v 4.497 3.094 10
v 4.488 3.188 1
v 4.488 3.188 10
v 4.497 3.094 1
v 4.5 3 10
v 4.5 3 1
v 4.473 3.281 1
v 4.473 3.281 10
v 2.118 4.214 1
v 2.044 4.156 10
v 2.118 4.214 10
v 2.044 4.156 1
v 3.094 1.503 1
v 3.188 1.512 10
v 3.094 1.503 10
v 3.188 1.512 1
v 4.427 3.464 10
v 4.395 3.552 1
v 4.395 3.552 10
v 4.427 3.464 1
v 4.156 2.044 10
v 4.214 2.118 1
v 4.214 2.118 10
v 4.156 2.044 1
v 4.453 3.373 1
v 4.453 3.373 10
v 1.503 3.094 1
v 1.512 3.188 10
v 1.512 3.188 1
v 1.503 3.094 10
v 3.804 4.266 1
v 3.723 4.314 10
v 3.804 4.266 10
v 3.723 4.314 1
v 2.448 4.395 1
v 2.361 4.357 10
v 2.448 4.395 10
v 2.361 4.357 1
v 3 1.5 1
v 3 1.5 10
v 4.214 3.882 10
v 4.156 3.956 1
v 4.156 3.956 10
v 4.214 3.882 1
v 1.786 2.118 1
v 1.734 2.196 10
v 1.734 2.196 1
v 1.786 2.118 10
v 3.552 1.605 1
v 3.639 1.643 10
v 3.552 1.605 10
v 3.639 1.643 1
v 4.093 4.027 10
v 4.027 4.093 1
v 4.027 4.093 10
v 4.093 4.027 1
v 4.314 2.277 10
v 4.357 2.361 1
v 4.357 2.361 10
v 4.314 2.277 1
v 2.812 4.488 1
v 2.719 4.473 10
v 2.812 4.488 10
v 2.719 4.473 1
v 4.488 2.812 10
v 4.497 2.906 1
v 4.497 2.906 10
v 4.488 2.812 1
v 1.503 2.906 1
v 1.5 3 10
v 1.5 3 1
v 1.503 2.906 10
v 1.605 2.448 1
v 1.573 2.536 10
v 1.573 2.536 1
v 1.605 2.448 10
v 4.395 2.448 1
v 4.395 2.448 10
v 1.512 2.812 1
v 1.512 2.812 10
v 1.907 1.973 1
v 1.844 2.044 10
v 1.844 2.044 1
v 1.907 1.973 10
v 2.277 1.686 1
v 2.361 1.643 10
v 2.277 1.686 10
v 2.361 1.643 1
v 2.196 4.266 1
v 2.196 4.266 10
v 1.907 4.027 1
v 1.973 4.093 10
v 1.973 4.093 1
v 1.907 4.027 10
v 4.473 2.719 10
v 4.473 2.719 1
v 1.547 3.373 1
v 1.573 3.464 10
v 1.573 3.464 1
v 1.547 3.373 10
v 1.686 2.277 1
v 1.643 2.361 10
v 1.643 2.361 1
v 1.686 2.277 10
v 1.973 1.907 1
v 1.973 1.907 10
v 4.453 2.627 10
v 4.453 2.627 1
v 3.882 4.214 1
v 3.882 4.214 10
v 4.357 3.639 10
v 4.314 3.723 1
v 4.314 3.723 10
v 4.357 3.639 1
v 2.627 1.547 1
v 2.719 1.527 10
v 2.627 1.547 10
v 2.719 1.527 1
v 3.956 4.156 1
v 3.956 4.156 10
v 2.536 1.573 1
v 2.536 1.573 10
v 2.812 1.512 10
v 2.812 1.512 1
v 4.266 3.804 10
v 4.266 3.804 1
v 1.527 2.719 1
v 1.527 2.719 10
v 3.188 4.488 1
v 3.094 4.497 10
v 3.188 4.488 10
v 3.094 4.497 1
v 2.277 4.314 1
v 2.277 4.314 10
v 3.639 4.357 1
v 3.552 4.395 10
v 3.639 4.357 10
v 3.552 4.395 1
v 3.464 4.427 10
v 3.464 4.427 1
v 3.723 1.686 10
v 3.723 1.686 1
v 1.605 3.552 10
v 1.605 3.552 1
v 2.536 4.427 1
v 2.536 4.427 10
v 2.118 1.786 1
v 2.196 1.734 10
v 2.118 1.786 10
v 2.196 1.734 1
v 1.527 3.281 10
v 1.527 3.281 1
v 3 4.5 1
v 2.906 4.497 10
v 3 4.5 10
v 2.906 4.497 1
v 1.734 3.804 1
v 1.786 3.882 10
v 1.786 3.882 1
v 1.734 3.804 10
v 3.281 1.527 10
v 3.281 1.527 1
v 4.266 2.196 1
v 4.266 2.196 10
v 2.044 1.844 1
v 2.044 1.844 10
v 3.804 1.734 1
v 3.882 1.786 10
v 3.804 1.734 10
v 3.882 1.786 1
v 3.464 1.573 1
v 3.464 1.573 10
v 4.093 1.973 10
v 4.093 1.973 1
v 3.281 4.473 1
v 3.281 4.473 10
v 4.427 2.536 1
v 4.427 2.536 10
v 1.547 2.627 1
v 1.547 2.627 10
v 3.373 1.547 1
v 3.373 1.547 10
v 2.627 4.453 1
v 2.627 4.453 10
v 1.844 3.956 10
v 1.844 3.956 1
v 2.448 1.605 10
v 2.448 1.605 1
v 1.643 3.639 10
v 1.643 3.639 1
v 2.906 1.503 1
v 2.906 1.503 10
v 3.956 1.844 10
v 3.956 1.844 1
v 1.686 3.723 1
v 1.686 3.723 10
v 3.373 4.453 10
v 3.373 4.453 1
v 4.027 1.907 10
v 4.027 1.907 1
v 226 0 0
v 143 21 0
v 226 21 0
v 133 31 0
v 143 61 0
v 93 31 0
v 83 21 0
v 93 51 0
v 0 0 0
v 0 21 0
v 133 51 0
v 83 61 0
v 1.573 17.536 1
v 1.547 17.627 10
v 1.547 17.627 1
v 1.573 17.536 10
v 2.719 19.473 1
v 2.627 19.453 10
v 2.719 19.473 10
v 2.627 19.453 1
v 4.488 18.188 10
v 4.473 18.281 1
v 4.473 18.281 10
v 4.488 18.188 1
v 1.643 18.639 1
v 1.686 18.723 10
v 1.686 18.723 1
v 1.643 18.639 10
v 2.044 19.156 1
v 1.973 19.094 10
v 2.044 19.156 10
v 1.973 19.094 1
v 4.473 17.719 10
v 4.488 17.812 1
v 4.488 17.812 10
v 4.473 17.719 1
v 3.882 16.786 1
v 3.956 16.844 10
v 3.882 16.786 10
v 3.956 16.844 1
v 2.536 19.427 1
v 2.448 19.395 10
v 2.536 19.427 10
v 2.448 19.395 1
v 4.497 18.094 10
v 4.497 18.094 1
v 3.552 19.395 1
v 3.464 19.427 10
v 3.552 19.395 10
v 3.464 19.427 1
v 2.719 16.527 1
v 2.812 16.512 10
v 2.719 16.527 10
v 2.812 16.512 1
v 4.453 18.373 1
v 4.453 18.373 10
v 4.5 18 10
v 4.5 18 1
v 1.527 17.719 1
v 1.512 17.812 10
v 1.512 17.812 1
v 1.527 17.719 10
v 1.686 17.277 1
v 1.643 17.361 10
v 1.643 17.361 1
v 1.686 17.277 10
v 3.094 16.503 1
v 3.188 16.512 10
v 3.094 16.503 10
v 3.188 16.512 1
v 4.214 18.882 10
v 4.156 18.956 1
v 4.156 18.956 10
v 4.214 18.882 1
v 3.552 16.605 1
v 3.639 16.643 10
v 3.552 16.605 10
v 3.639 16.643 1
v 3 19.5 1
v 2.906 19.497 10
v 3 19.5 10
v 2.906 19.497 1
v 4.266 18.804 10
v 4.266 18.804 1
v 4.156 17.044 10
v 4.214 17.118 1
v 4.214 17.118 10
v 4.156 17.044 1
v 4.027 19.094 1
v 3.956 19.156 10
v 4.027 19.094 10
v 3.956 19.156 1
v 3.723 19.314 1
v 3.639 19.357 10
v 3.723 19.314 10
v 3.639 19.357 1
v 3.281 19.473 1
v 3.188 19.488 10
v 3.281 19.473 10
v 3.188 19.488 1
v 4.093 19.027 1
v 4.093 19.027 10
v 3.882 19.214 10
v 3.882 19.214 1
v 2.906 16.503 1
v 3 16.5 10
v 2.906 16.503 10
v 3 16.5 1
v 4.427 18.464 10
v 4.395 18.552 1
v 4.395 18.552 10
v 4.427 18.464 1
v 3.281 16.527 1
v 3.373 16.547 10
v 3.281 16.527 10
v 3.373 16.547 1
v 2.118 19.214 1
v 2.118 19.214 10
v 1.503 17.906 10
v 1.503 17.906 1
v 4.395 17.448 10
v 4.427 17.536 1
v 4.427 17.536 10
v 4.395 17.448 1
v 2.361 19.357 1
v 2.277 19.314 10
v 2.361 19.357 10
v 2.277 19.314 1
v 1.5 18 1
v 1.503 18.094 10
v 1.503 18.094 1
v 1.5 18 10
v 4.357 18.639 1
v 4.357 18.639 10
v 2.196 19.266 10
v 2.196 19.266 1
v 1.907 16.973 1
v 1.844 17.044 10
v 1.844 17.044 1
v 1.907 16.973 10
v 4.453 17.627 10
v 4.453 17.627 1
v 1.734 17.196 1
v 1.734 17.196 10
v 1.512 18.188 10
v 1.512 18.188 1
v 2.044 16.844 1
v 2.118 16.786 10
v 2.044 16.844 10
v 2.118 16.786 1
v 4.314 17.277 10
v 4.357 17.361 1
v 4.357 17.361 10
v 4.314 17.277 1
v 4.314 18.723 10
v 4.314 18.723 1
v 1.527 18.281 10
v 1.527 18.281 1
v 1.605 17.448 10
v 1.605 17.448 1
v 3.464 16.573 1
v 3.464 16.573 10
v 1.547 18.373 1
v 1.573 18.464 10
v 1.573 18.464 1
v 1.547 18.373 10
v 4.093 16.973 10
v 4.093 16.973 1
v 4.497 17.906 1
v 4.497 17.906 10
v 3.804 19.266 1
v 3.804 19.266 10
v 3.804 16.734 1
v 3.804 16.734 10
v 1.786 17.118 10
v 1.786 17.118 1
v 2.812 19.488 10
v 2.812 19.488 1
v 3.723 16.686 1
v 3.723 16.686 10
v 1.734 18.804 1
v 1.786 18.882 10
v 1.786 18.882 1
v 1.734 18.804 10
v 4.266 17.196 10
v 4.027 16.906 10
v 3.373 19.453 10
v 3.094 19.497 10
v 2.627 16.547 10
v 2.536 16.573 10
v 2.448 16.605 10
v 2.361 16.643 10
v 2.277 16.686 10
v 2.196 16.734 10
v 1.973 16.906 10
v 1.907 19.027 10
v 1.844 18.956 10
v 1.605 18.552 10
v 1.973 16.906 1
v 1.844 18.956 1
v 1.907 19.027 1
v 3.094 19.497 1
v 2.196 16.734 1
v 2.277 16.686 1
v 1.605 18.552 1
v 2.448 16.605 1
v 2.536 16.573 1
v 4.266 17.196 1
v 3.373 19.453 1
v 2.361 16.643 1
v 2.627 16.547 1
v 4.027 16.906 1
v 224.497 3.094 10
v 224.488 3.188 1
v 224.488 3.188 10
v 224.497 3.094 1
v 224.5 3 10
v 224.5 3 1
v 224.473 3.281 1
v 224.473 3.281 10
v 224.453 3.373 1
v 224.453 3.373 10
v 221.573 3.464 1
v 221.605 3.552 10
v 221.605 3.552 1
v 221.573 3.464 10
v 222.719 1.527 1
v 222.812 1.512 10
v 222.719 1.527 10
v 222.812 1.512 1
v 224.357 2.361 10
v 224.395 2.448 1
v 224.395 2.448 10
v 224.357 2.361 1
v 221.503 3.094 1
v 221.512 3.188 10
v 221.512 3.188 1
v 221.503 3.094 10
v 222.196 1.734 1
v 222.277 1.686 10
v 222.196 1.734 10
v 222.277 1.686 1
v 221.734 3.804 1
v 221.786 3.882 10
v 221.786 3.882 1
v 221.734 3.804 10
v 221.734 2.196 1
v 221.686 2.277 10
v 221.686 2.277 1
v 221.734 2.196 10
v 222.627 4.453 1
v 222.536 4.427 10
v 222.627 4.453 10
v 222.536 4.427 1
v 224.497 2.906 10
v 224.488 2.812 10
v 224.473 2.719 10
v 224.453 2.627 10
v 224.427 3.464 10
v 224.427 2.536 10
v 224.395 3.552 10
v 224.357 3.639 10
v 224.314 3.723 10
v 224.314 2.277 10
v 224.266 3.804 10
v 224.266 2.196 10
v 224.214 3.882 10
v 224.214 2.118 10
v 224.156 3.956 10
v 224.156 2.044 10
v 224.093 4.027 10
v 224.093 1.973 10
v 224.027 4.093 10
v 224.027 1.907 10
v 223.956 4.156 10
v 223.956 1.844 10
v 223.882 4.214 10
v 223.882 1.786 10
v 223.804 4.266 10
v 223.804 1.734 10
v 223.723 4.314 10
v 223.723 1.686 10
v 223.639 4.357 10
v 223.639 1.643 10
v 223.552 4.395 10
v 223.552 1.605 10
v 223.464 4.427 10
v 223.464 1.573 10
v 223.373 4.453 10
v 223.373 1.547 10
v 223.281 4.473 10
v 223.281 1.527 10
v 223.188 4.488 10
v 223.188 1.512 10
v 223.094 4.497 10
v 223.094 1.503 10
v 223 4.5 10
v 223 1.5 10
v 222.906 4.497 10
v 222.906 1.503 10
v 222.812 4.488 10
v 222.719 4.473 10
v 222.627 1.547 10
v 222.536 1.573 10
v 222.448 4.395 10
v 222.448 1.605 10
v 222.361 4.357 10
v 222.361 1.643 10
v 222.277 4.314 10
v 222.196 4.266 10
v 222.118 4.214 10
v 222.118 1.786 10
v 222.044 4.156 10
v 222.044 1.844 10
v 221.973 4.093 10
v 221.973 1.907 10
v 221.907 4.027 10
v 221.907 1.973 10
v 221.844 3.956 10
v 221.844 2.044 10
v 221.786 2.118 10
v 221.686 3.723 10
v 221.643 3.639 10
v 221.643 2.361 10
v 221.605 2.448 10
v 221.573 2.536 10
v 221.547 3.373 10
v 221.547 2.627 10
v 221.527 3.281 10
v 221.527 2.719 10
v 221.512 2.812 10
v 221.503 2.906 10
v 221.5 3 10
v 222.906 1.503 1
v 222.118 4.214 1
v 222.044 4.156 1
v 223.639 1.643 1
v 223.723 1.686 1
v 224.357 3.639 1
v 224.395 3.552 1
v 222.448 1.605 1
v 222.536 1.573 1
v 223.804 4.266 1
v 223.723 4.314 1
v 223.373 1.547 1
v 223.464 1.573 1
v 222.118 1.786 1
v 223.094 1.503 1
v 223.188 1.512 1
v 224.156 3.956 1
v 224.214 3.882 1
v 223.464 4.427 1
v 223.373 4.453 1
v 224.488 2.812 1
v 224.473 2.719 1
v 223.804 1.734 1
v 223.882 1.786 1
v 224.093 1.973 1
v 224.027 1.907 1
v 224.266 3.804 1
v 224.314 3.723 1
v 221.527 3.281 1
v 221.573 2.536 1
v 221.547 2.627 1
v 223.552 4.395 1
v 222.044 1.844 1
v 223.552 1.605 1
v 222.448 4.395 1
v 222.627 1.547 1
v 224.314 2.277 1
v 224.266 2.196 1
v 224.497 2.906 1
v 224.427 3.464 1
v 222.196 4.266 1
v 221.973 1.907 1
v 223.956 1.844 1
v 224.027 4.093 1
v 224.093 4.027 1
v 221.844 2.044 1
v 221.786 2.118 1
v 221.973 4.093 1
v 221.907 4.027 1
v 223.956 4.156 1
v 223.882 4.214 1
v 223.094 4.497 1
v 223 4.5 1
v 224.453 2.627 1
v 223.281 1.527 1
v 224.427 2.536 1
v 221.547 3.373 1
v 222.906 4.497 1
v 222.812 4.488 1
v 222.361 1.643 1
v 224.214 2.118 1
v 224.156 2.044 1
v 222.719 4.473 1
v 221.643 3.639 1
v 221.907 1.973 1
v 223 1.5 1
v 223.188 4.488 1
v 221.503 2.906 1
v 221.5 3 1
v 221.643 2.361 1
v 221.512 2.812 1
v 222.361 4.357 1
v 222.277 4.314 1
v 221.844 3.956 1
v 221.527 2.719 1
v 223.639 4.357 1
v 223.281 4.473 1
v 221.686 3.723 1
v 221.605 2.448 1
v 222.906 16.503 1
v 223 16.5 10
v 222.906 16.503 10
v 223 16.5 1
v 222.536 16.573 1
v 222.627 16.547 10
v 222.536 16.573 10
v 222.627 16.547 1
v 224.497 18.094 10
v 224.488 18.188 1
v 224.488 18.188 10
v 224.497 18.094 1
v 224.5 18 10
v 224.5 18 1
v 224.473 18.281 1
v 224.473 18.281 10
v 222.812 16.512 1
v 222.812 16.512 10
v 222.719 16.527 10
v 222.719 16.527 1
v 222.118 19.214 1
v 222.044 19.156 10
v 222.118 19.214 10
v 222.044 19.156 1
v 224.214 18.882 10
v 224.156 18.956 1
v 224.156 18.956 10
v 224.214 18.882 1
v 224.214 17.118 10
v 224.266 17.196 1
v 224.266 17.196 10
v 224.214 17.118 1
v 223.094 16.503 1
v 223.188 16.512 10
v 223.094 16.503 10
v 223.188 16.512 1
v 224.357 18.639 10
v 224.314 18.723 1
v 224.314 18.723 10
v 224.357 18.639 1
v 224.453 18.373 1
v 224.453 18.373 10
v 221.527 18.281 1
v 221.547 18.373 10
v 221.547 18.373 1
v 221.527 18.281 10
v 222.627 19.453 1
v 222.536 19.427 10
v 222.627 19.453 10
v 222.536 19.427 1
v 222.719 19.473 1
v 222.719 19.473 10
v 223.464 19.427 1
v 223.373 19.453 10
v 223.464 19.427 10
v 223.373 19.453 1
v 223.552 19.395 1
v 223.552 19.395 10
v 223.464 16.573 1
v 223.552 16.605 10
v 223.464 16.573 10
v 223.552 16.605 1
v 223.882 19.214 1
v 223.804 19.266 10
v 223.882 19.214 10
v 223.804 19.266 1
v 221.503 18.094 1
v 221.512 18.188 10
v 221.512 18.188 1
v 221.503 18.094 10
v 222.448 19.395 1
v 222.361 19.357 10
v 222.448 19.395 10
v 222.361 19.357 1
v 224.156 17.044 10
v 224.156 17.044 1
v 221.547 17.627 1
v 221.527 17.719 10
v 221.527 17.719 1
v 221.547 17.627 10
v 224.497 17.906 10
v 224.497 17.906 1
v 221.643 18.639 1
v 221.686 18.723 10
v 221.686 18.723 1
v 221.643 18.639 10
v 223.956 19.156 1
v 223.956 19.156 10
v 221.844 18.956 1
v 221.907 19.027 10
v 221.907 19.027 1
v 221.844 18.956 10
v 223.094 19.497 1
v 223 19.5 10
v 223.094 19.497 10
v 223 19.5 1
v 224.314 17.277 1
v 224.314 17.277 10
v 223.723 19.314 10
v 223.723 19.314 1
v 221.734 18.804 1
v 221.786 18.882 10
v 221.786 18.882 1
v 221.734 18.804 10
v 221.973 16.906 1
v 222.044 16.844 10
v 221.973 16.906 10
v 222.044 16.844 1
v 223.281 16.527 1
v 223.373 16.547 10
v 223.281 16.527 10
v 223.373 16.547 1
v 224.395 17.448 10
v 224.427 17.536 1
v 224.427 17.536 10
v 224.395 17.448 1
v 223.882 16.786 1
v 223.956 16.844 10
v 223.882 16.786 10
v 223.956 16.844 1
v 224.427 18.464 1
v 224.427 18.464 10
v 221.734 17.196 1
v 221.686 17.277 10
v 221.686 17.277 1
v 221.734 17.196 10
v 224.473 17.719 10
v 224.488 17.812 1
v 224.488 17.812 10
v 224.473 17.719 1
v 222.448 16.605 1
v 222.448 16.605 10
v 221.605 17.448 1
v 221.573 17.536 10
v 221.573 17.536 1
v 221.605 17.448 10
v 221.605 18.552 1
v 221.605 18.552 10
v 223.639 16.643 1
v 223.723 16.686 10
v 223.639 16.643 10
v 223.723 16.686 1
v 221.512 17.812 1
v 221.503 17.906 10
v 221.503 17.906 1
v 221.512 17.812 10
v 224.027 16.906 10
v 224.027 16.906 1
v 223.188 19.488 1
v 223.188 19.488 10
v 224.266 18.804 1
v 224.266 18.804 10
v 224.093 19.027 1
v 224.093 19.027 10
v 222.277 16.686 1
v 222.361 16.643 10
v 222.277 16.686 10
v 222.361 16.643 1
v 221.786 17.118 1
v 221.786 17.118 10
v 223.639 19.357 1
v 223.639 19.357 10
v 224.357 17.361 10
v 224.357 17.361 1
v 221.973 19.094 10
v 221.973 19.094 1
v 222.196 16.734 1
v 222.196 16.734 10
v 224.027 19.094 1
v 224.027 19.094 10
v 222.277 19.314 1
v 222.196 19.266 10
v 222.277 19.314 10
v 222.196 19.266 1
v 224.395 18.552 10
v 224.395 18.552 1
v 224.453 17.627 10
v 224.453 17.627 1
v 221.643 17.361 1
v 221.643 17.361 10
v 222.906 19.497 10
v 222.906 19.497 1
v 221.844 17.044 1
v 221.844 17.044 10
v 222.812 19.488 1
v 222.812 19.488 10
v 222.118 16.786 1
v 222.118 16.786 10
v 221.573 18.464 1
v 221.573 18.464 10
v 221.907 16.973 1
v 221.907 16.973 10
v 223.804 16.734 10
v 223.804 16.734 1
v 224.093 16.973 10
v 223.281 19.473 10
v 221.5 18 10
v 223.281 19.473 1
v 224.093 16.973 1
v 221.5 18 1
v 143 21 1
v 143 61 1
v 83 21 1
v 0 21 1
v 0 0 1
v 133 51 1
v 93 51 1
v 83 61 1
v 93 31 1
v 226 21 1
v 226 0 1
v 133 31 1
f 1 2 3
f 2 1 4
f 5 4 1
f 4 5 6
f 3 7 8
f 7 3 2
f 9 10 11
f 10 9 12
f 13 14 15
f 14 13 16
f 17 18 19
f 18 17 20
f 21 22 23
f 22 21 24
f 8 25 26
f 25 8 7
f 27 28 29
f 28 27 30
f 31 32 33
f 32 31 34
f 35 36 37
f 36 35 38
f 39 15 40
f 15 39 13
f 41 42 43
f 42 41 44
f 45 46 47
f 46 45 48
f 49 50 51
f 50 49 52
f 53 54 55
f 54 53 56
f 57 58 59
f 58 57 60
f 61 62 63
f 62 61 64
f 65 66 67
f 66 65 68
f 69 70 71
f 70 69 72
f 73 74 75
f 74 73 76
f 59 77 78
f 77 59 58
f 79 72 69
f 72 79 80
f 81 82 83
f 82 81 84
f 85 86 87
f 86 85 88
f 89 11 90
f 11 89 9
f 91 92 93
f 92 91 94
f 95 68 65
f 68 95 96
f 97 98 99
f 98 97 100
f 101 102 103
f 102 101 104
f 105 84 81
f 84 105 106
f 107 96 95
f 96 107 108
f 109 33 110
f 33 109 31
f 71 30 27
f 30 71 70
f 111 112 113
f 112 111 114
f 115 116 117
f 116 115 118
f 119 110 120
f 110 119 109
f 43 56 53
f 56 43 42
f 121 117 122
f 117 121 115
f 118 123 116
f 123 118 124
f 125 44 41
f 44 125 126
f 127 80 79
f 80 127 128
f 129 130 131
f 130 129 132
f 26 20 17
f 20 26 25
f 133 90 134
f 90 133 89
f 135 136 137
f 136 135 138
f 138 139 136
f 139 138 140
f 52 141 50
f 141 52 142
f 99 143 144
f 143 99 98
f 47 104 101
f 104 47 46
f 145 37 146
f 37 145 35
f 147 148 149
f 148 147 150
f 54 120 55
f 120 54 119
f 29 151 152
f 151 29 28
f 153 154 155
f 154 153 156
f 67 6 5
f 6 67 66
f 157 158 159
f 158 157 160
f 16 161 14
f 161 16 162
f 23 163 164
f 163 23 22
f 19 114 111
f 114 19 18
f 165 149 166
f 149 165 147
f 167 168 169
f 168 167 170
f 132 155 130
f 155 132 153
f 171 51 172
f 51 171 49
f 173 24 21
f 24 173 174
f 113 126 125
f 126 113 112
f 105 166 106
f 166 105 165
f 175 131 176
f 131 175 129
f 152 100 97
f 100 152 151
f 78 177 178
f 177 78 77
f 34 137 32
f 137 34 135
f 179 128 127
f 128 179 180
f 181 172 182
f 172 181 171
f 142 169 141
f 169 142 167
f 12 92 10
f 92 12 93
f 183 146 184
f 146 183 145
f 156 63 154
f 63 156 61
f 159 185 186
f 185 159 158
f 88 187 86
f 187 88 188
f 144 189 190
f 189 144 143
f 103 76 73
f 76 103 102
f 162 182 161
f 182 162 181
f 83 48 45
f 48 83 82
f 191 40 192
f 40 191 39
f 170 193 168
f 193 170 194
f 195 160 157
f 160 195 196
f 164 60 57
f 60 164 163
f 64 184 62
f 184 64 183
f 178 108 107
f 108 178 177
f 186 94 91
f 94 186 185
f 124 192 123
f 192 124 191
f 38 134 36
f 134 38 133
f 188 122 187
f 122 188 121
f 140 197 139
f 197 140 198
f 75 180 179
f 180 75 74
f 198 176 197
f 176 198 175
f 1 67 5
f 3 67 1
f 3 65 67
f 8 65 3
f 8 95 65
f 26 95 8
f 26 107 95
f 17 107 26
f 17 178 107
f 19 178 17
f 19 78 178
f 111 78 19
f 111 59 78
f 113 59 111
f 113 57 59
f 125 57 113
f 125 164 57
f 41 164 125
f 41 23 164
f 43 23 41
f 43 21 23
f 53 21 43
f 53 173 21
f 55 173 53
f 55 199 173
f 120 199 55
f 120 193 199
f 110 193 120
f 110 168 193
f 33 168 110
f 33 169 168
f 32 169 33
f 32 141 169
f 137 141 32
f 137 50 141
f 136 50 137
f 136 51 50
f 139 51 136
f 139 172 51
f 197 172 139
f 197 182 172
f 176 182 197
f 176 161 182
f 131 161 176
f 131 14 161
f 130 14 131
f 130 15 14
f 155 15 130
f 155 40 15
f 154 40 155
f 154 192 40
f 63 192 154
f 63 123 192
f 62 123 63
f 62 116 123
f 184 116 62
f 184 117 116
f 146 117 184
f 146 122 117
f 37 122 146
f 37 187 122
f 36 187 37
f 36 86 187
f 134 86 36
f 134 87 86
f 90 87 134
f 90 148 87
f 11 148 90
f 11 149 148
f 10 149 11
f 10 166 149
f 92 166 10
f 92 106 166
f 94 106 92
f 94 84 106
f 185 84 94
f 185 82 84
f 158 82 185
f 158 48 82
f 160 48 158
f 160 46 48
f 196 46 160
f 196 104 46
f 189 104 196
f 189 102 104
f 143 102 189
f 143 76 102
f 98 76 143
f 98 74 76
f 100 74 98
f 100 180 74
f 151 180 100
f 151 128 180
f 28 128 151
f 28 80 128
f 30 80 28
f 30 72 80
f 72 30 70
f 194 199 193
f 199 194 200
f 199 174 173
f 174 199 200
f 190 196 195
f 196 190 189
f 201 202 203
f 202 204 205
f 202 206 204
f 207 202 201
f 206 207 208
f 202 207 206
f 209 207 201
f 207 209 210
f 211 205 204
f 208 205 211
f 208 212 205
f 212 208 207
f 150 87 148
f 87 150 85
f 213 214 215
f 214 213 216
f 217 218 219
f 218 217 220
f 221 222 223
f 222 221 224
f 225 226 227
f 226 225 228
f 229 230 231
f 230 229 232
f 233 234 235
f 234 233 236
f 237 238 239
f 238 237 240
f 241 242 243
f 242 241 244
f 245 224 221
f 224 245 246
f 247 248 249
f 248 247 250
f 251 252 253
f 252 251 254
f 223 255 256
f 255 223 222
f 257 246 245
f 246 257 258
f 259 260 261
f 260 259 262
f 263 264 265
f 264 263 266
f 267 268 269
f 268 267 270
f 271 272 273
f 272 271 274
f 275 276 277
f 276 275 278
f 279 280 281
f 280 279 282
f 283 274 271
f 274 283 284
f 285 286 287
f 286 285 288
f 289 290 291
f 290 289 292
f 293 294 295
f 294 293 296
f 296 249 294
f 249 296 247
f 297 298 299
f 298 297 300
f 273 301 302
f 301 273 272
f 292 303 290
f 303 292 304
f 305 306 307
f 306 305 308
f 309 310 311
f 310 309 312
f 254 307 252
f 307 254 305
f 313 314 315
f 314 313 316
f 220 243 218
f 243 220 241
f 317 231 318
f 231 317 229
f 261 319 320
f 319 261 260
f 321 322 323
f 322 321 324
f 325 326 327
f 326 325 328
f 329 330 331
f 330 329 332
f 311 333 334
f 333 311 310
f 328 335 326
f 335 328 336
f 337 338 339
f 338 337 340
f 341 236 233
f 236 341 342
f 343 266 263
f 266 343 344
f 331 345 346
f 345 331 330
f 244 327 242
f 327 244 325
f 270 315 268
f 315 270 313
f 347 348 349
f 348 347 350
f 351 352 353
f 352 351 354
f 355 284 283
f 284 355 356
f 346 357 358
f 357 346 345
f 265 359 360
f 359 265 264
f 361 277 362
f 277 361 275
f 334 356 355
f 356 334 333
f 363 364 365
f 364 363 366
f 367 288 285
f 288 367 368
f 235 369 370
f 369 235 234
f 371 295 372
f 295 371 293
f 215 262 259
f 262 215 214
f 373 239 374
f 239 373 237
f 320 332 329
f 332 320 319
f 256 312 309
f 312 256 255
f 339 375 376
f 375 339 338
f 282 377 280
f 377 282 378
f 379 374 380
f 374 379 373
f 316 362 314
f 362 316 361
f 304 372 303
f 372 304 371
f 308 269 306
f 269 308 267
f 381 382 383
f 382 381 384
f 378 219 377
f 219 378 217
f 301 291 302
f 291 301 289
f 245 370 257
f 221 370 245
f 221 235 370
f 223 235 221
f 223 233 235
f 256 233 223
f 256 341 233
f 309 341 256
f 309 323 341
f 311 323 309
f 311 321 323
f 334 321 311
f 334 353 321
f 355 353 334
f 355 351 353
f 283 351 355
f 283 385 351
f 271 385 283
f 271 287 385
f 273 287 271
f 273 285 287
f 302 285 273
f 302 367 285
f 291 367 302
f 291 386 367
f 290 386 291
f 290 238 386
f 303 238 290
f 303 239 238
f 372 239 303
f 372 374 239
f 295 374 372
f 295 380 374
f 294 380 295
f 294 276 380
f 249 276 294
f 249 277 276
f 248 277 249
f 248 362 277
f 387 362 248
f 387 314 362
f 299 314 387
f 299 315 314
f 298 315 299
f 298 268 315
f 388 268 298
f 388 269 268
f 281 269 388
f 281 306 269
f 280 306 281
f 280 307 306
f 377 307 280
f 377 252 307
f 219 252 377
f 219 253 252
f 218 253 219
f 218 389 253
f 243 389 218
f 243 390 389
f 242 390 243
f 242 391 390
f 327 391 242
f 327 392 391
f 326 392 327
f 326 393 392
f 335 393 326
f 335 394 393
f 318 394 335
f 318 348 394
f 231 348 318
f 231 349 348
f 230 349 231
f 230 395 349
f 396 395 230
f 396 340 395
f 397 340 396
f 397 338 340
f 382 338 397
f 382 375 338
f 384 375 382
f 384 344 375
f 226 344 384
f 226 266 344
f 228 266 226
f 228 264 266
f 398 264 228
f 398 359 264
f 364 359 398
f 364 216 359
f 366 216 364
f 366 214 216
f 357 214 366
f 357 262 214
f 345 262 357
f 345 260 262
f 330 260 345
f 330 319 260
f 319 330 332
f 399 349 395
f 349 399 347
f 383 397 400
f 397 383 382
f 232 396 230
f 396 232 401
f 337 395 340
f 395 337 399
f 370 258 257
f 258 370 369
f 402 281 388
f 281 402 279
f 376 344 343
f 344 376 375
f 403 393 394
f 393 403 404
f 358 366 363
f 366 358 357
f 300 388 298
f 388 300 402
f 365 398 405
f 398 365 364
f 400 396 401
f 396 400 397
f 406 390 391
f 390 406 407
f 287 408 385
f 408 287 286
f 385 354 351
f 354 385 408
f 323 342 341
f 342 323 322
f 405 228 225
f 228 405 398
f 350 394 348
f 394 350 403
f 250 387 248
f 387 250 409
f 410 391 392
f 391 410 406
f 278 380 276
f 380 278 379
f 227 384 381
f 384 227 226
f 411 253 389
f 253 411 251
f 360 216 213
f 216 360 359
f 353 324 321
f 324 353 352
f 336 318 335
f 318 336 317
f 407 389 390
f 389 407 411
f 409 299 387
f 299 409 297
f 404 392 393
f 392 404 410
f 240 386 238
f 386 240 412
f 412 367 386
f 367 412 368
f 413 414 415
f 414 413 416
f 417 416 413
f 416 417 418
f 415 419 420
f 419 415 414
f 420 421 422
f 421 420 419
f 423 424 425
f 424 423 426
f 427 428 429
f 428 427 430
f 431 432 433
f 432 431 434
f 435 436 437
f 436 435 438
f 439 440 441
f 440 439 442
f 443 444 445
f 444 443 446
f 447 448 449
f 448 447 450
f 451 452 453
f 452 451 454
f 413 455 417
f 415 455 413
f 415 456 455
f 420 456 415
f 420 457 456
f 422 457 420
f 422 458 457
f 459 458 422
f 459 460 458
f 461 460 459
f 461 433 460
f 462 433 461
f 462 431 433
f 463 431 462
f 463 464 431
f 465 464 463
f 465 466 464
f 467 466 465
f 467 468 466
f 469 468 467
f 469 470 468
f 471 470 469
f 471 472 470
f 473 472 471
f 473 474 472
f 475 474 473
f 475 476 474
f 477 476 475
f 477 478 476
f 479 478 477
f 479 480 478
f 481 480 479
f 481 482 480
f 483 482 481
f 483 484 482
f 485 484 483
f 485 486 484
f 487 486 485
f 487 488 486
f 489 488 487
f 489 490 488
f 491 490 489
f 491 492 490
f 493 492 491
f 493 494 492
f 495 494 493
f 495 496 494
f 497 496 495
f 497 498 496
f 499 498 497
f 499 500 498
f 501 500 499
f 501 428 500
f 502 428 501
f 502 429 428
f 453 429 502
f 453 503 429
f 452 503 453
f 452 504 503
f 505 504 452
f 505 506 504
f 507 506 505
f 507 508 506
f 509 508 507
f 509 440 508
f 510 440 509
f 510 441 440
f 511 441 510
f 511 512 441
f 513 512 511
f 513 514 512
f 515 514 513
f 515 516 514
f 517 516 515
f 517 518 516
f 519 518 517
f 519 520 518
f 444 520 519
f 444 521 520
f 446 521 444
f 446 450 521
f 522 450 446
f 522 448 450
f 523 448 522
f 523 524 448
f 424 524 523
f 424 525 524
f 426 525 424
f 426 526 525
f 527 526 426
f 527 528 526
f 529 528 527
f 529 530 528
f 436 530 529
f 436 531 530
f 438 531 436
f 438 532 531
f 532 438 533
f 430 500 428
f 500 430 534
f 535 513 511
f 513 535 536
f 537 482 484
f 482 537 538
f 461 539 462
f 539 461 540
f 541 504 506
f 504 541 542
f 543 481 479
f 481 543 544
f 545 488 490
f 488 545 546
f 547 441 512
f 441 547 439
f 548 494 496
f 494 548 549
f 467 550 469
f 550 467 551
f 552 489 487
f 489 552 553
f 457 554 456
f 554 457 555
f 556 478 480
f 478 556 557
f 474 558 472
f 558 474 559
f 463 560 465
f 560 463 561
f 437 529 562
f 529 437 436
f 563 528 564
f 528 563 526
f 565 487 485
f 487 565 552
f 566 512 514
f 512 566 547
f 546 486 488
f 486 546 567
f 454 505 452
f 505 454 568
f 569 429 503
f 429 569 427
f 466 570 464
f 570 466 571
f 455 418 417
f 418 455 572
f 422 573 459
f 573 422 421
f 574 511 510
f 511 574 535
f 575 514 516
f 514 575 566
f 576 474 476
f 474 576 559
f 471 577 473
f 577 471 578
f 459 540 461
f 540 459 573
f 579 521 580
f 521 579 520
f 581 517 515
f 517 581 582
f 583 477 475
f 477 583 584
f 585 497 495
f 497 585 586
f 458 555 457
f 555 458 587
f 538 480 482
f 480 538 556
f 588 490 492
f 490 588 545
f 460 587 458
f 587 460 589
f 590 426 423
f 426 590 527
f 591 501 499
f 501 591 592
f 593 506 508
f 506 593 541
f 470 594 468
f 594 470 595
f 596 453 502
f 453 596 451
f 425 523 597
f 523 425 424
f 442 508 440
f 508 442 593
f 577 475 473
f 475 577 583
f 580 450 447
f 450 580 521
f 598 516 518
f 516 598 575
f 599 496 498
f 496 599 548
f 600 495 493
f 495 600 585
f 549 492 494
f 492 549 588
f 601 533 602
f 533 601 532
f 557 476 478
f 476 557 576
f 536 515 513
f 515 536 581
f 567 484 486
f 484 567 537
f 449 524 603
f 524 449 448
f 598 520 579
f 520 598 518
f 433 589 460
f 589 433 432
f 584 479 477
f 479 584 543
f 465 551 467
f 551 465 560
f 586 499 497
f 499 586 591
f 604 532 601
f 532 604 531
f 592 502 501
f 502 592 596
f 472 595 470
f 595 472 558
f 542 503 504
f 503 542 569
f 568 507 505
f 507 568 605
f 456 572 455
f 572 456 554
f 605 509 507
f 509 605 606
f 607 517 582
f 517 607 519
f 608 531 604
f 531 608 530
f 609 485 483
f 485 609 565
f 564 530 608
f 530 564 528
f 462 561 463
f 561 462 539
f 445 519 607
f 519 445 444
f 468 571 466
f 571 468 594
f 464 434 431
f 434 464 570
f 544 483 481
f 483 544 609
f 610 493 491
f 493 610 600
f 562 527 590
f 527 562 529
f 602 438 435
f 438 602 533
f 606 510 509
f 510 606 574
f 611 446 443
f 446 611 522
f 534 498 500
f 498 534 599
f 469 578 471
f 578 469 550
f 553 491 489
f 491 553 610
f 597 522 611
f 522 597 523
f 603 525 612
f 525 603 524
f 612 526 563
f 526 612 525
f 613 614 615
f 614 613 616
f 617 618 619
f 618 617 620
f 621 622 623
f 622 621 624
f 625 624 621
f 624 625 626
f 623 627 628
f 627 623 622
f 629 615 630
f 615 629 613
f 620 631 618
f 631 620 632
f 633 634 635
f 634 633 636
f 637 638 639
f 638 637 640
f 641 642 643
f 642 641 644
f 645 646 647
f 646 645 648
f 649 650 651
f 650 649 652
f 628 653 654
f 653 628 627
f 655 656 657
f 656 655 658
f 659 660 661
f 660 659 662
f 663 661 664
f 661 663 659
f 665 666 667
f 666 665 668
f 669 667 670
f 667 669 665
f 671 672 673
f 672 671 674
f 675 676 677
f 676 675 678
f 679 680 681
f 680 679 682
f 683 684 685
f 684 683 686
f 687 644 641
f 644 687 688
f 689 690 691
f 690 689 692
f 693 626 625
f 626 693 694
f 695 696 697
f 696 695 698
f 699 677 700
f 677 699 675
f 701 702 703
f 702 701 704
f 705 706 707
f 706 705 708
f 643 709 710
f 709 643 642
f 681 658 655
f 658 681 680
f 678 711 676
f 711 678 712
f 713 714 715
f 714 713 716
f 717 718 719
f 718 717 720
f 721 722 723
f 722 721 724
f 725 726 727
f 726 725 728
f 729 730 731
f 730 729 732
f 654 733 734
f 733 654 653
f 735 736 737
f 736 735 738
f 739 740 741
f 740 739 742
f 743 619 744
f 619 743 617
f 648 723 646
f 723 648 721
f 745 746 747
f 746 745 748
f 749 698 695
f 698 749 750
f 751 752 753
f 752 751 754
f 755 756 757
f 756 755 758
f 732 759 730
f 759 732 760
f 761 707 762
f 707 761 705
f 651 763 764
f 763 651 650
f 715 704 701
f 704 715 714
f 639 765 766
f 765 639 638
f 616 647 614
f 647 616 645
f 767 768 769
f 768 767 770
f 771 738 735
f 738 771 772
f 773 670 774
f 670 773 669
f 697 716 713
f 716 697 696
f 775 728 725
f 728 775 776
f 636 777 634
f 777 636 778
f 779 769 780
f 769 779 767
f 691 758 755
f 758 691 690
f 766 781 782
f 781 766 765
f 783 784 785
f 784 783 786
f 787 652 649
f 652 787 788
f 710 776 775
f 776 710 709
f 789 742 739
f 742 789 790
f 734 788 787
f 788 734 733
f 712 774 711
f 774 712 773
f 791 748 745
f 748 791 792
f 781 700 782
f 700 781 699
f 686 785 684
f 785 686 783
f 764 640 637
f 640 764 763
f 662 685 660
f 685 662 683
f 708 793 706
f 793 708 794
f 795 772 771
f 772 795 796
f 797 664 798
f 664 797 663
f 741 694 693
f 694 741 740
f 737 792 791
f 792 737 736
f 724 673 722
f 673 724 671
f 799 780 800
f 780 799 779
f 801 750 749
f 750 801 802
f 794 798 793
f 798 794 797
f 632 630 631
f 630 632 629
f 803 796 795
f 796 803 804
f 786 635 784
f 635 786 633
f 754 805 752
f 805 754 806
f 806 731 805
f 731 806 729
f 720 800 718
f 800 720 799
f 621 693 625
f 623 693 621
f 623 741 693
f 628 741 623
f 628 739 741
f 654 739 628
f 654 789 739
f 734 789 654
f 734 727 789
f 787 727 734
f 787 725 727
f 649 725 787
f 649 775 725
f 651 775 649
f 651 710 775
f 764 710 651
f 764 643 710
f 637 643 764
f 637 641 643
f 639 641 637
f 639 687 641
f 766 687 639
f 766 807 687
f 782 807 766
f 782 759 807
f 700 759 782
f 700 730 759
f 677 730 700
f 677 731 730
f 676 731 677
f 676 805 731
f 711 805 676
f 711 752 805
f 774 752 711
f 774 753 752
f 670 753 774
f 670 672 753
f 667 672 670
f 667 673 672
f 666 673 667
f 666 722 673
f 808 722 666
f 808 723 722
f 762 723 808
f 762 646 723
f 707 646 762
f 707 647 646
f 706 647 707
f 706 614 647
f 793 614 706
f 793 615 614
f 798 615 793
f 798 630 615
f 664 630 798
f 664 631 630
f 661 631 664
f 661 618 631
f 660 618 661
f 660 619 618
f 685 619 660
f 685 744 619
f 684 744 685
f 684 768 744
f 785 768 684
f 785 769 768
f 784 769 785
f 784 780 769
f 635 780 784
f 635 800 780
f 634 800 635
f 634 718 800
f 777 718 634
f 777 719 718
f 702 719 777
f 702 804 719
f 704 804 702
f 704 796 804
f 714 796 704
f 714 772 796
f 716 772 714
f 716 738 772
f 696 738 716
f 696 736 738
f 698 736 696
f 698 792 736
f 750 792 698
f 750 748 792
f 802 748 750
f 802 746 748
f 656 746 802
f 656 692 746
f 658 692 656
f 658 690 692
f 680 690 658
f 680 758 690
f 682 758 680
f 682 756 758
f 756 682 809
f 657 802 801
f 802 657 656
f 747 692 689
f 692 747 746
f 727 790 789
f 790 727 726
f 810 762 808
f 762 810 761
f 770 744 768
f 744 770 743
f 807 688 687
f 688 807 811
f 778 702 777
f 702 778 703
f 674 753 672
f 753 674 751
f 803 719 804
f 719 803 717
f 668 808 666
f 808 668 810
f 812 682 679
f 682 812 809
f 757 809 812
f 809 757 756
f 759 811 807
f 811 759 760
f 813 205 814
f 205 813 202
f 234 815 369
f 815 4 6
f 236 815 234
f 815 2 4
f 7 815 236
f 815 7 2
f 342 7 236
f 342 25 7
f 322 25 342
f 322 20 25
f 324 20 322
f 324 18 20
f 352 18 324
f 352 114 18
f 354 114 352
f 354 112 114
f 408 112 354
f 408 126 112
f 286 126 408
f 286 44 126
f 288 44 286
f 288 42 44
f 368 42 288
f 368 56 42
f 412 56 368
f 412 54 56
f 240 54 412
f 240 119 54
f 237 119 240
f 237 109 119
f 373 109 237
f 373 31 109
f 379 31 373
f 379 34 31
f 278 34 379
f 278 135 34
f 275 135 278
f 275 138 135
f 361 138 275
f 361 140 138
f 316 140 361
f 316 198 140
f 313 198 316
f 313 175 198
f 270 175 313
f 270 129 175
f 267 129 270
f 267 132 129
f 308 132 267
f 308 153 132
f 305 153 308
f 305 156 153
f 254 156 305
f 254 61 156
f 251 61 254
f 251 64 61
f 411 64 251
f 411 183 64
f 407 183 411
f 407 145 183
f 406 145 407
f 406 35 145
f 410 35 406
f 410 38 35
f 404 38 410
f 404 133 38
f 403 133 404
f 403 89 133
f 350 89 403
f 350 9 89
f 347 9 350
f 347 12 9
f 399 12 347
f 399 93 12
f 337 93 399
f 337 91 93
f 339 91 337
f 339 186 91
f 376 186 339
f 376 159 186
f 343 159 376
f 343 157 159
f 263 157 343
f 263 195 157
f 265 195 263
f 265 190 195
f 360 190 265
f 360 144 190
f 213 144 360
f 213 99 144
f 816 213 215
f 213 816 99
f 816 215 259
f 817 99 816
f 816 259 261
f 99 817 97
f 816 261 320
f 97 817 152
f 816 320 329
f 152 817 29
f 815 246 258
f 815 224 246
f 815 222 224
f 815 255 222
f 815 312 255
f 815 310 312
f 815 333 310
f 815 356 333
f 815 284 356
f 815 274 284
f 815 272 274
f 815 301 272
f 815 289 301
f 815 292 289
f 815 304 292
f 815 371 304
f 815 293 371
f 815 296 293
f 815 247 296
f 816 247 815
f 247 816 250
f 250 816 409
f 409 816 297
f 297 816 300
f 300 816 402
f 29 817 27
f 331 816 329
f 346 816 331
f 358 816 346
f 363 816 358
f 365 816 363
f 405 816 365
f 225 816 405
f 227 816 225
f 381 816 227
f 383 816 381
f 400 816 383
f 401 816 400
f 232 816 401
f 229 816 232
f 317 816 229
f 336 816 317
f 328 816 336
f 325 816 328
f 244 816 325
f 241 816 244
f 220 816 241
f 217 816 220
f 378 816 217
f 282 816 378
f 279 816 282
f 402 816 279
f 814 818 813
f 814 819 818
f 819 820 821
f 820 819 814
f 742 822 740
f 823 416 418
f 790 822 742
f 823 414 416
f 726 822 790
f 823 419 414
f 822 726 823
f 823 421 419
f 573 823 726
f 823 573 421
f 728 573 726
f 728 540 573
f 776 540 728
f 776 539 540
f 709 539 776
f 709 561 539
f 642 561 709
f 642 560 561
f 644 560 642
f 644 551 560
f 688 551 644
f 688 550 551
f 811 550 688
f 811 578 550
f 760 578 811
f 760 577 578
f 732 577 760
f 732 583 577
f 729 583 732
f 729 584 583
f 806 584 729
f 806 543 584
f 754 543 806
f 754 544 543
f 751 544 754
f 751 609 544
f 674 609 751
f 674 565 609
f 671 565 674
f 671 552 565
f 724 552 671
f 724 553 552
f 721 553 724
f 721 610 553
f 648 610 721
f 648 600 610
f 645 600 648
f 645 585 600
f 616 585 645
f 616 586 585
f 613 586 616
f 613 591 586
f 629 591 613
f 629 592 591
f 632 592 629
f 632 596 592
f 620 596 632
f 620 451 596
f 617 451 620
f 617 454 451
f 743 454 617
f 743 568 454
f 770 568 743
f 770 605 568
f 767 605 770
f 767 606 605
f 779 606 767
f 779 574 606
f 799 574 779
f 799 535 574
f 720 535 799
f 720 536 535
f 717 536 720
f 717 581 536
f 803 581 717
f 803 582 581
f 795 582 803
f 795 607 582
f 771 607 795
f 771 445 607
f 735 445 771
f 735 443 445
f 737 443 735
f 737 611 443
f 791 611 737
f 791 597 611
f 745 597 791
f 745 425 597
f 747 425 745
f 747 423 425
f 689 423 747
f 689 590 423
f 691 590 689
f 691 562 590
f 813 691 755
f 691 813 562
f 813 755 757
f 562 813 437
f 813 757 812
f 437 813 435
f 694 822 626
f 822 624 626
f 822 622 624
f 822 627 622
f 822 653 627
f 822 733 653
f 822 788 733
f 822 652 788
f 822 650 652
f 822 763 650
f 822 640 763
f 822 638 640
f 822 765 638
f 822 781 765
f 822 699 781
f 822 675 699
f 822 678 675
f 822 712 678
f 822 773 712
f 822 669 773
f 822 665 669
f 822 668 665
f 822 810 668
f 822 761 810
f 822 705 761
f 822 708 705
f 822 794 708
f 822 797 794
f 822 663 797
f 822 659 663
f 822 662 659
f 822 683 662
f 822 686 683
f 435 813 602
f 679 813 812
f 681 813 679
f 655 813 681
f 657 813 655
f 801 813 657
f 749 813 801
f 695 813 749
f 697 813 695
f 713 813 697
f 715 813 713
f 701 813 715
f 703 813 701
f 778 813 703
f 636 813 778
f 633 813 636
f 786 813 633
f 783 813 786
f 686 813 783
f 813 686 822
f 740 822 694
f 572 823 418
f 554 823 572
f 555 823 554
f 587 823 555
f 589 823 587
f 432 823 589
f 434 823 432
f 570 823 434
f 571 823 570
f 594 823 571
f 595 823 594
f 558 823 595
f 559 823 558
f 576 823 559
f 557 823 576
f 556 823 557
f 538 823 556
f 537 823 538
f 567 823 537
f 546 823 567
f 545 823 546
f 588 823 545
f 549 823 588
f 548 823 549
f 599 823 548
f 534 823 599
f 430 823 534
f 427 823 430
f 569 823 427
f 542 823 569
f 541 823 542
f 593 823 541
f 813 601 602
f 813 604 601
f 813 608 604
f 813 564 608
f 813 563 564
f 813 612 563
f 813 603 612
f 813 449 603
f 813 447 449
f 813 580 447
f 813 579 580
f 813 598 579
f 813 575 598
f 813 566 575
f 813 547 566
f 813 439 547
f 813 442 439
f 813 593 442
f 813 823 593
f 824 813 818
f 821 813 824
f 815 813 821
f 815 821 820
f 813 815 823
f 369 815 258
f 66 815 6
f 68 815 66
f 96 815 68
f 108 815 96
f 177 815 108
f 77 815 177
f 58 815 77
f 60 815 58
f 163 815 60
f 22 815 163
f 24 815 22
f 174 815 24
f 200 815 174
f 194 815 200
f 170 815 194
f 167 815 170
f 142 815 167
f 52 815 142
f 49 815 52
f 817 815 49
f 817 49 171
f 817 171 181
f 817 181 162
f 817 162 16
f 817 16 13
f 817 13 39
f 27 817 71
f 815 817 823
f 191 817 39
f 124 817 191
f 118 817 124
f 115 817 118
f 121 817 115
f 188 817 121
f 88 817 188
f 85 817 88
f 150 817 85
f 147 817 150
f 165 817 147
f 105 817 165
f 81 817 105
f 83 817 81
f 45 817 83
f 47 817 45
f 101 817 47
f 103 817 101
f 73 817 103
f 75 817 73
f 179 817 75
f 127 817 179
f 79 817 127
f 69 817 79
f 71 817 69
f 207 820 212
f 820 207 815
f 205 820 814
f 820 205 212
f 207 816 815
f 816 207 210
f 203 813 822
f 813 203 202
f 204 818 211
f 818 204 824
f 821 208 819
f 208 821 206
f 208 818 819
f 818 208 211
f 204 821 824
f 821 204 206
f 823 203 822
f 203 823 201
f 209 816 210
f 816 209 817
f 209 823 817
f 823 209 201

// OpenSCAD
$fn = 100 ;
width = 220 ;
height = 15 ;
thickness = 1 ;
pinH = 10 ;
pinD = 3 ;
clipW = 40 ;
clipWout = 60 ;
clipH = 20 ;
clipHout = 40 ;
totWidth = width+2*pinD ;
totHeight = height+2*pinD ;

module pin() {
    cylinder(h=pinH,d=pinD);
}

translate([0, 0, 0]) cube([totWidth, totHeight, thickness]);
translate([pinD, pinD, 0]) {
	//move all pins at once while retaining their relative pos
	translate([0, 0, 0]) pin();
	translate([0, height, 0]) pin();
	translate([width, 0, 0]) pin();
	translate([width, height, 0]) pin();
}
difference() {
    translate([totWidth/2 - clipWout/2, totHeight, 0]) cube([clipWout, clipHout, thickness]);
    translate([totWidth/2 - clipW/2, totHeight + clipH/2, -.1]) cube([clipW, clipH, thickness + .2]);
}
